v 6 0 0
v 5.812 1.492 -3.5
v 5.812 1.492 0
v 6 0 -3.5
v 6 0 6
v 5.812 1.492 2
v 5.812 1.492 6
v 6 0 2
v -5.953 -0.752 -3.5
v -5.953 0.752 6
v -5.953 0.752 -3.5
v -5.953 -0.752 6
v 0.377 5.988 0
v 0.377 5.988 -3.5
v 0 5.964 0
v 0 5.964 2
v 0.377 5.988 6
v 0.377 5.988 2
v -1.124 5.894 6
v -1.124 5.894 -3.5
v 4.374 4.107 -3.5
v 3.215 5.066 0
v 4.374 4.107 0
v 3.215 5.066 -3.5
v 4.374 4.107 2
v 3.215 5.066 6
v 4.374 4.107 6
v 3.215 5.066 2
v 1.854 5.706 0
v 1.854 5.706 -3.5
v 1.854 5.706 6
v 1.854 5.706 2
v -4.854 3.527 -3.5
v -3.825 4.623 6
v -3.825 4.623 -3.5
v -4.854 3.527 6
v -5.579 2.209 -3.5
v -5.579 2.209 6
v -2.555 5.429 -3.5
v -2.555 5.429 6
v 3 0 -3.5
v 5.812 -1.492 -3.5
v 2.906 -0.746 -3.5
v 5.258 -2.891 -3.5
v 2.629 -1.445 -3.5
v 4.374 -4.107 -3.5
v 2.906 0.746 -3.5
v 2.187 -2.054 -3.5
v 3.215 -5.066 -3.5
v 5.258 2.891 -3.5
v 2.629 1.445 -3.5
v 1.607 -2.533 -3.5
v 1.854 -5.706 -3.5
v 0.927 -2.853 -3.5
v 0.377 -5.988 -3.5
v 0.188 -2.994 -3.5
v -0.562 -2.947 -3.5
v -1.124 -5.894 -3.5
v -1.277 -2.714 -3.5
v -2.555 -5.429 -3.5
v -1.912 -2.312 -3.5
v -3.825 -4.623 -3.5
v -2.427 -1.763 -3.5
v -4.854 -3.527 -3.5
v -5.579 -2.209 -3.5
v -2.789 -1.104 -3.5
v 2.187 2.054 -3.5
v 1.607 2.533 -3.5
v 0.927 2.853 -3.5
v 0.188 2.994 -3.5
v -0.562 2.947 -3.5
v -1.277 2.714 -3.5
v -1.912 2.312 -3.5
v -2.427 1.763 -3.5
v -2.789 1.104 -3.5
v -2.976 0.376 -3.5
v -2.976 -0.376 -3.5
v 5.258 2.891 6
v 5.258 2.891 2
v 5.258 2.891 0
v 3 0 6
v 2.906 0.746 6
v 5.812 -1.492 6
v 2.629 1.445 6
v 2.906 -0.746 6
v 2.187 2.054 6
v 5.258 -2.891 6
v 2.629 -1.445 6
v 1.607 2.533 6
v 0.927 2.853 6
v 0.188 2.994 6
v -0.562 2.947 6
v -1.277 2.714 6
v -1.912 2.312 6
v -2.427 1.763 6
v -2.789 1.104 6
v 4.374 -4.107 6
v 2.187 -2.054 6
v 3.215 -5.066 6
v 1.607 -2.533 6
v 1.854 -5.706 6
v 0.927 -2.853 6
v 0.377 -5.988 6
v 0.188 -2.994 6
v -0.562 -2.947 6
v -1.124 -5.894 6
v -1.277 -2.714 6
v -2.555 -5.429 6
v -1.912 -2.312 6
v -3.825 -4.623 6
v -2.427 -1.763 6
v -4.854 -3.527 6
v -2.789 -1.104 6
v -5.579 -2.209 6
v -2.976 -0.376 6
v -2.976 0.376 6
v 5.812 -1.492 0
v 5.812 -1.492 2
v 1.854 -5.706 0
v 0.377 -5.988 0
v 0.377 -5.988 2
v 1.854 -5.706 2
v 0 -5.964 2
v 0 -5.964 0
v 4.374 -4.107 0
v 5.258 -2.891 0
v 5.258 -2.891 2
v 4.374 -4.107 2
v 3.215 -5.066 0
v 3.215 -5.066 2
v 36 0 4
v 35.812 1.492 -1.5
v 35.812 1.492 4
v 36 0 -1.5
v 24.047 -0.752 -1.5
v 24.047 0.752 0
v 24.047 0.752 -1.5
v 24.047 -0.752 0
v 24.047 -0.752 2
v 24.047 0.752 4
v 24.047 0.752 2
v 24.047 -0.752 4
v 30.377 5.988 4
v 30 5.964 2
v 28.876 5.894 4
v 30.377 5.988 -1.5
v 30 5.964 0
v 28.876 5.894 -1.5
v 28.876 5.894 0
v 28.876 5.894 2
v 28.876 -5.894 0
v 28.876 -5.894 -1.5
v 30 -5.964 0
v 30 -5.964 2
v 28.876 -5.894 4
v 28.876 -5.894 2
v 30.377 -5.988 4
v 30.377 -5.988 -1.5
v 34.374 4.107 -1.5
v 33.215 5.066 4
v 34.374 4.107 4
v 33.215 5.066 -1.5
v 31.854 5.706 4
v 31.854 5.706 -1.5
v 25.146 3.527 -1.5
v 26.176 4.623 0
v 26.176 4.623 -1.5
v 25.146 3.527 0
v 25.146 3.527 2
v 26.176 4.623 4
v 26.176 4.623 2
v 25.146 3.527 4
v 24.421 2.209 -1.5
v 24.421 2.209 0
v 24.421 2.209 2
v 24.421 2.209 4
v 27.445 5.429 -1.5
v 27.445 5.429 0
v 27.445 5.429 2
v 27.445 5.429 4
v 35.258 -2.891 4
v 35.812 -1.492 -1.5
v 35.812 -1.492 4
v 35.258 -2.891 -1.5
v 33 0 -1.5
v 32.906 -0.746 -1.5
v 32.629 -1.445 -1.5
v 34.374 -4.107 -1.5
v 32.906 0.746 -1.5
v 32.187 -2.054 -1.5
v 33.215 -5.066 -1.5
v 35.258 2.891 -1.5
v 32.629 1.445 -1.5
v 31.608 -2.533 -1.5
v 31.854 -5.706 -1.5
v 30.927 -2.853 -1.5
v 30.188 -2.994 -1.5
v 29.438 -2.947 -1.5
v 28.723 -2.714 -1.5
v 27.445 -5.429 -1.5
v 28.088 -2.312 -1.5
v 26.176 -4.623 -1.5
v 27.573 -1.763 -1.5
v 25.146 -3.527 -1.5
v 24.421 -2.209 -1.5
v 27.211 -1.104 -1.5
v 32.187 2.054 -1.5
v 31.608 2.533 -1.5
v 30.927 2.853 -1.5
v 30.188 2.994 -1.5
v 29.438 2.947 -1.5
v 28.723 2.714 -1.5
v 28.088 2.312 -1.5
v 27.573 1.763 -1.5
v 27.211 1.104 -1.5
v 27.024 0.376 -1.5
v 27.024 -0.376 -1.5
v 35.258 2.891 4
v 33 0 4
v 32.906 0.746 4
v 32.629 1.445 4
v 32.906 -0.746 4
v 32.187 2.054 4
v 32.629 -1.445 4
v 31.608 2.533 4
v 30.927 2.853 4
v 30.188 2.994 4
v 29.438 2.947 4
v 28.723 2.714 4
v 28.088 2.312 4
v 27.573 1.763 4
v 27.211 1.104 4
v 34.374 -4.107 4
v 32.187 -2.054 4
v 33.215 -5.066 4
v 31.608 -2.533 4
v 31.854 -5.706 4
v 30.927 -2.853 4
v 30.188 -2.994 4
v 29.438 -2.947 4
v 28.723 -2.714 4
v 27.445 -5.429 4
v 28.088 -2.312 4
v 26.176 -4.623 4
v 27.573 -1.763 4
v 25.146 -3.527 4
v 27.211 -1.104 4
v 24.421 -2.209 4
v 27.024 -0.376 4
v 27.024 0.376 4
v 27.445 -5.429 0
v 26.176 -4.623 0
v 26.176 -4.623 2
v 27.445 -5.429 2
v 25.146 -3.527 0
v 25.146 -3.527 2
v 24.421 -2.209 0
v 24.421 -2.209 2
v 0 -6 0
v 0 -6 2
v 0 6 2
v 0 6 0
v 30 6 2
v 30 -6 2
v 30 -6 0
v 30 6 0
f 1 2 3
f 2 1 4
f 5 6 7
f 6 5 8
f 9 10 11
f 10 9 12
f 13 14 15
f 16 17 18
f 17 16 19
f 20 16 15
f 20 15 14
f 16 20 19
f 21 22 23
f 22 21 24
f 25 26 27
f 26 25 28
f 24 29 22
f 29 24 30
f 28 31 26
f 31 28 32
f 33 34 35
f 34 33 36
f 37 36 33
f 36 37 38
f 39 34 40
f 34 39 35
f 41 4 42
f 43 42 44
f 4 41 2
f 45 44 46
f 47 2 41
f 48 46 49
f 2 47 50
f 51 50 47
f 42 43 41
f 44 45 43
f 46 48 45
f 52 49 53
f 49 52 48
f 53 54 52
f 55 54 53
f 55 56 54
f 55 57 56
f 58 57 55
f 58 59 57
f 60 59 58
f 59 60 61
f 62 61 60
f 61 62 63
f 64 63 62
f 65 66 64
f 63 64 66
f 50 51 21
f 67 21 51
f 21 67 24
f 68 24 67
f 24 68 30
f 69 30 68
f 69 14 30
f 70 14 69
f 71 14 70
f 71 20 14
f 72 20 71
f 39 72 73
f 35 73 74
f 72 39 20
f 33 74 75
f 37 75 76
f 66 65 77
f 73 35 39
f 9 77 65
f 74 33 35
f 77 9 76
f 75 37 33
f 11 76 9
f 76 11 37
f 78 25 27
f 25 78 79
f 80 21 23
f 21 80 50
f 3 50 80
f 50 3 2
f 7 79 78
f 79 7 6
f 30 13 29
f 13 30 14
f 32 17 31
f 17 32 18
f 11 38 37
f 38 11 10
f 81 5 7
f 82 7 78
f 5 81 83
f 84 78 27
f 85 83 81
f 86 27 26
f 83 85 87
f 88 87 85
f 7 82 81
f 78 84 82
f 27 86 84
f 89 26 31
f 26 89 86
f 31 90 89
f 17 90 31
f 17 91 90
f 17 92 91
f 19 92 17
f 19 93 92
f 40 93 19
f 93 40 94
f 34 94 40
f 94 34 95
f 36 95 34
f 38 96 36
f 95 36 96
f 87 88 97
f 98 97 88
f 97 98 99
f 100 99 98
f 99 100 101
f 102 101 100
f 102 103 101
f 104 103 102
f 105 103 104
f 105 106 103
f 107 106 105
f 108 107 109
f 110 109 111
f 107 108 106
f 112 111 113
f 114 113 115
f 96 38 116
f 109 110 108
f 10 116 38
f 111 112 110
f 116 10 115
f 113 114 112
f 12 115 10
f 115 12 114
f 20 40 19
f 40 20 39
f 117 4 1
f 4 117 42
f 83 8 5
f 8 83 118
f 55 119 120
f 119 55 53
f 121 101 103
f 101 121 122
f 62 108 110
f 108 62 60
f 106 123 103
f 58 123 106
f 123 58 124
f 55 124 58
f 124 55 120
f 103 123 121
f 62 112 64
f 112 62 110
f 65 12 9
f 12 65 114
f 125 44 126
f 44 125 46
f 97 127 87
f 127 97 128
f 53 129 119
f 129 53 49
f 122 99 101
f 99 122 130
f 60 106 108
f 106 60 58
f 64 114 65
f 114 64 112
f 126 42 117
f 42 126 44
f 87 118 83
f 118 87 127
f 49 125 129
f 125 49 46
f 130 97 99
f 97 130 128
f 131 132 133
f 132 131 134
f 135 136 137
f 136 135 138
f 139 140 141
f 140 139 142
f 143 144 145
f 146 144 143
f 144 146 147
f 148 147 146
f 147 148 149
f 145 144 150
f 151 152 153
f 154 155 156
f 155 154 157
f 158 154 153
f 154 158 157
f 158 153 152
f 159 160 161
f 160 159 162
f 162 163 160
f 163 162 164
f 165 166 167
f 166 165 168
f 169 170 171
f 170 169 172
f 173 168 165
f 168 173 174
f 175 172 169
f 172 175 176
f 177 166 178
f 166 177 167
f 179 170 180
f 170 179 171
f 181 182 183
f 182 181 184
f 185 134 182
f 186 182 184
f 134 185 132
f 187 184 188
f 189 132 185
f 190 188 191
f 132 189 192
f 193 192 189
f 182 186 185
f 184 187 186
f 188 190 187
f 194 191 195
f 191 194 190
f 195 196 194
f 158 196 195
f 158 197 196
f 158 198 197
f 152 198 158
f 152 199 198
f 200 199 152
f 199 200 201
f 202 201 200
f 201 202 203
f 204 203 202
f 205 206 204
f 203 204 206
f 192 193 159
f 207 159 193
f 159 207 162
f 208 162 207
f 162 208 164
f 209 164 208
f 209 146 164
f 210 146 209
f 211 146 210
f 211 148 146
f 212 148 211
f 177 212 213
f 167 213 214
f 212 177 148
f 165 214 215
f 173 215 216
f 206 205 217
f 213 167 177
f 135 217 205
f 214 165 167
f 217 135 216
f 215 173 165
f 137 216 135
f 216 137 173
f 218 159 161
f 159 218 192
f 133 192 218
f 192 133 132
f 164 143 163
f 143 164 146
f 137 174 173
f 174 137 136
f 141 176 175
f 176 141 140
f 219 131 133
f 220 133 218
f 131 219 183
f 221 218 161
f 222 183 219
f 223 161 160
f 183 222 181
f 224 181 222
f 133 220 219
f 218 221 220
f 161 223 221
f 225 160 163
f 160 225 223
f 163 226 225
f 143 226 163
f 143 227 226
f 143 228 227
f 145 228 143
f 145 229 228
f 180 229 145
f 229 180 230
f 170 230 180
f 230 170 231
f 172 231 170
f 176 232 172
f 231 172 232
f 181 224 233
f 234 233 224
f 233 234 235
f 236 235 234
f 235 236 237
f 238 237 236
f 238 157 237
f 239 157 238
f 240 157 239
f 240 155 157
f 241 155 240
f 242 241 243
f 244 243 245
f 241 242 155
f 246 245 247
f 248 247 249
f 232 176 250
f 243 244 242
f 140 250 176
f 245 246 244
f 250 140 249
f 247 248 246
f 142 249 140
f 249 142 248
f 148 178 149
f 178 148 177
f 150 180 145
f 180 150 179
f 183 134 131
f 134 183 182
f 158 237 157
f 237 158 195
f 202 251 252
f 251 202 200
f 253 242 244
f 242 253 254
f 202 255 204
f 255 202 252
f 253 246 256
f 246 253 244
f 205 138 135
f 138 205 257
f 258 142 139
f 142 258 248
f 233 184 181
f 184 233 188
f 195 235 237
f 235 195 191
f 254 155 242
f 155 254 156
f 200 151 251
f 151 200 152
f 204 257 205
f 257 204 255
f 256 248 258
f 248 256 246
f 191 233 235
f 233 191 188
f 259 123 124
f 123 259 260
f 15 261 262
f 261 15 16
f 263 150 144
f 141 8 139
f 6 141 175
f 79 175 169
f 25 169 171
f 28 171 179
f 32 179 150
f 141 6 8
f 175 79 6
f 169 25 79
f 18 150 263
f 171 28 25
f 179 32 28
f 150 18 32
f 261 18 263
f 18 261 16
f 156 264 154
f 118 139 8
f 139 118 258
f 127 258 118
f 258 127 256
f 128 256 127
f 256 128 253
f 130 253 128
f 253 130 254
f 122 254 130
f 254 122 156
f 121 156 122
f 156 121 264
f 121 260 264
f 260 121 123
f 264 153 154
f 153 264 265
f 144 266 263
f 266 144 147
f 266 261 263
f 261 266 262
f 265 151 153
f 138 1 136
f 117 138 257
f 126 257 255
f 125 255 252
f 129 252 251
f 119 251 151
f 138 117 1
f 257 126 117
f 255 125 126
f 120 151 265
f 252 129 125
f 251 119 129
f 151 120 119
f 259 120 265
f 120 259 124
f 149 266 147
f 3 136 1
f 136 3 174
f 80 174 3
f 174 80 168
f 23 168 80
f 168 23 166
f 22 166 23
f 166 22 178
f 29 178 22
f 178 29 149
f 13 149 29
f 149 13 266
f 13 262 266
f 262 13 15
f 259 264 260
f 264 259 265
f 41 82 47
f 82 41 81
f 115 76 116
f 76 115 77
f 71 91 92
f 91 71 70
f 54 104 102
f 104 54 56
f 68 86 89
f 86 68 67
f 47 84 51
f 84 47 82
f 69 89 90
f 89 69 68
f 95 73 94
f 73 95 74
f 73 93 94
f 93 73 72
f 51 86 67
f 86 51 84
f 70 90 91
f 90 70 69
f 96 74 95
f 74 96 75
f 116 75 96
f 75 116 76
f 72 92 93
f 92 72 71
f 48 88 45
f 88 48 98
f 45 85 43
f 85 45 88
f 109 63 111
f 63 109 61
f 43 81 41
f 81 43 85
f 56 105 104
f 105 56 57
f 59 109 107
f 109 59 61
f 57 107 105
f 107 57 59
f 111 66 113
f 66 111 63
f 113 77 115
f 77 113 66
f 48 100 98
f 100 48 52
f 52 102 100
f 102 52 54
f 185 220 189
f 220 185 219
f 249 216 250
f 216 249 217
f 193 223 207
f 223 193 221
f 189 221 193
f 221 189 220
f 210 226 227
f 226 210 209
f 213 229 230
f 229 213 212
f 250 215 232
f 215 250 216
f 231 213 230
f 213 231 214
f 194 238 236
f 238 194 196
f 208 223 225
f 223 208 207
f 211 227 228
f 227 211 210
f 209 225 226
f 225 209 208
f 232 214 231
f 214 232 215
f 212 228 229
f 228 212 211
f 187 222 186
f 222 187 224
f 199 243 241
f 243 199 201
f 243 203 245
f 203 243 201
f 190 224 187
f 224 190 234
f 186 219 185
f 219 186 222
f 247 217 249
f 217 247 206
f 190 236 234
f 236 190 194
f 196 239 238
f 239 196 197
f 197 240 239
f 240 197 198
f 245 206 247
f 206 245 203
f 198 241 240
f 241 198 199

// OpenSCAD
// file: GlobalVariables.scad
quality=25;
//By puting '$fn=quality' as an argument in our 'cylinder()' functions, 
//we can ensure every cylinder always has 25 samples all the way around.

pin_radius=2.5;
//the radius of the main shaft of the pin.

pin_socket=3;
//The radius of the socket the pin fits into.

backing_thickness=2;
//All our flat-ish pieces are 2 units thick. This is just to standardize units. Some parts may use a multiple of this variable for spacers.



//Leg Assembly Specific
    gear_gap_dist=15;
    gear_thickness=3;
// main file
include <GlobalVariables.scad>



//Global Variables
    //quality=25;
    //pin_socket=3;
    //backing_thickness=2;       //Defines the thickness of the part


//Local Variables
    bit_distance=30;            //Defines distance between the two holes
    front_thickness=5;   //increases the thickness of the different ends of the part
    back_thickness=3;   //both of these are multiplied by backing_thickness
    
    spacing=0.5;

//TODO: should probably use a computed variable instead of doing X_thickness*backing_thickness over and over again



difference(){
    union(){
        translate([0,0,-(front_thickness-spacing)+backing_thickness/2]) 
            cylinder(r=pin_socket*2,h=backing_thickness*front_thickness-spacing,$fn=quality);
        translate([bit_distance,0,-(back_thickness-spacing)+backing_thickness/2]) 
            cylinder(r=pin_socket*2,h=backing_thickness*back_thickness-spacing,$fn=quality);
        translate([0,-pin_socket*2,0]) 
            cube([bit_distance,pin_socket*4,backing_thickness]);  
    }
    
    //pin holes
    union(){
        translate([0,0,-front_thickness+backing_thickness/2]) cylinder(r=pin_socket,h=backing_thickness*front_thickness,$fn=quality);
        translate([bit_distance,0,-back_thickness+backing_thickness/2]) cylinder(r=pin_socket,h=backing_thickness*back_thickness,$fn=quality);
    }
}
